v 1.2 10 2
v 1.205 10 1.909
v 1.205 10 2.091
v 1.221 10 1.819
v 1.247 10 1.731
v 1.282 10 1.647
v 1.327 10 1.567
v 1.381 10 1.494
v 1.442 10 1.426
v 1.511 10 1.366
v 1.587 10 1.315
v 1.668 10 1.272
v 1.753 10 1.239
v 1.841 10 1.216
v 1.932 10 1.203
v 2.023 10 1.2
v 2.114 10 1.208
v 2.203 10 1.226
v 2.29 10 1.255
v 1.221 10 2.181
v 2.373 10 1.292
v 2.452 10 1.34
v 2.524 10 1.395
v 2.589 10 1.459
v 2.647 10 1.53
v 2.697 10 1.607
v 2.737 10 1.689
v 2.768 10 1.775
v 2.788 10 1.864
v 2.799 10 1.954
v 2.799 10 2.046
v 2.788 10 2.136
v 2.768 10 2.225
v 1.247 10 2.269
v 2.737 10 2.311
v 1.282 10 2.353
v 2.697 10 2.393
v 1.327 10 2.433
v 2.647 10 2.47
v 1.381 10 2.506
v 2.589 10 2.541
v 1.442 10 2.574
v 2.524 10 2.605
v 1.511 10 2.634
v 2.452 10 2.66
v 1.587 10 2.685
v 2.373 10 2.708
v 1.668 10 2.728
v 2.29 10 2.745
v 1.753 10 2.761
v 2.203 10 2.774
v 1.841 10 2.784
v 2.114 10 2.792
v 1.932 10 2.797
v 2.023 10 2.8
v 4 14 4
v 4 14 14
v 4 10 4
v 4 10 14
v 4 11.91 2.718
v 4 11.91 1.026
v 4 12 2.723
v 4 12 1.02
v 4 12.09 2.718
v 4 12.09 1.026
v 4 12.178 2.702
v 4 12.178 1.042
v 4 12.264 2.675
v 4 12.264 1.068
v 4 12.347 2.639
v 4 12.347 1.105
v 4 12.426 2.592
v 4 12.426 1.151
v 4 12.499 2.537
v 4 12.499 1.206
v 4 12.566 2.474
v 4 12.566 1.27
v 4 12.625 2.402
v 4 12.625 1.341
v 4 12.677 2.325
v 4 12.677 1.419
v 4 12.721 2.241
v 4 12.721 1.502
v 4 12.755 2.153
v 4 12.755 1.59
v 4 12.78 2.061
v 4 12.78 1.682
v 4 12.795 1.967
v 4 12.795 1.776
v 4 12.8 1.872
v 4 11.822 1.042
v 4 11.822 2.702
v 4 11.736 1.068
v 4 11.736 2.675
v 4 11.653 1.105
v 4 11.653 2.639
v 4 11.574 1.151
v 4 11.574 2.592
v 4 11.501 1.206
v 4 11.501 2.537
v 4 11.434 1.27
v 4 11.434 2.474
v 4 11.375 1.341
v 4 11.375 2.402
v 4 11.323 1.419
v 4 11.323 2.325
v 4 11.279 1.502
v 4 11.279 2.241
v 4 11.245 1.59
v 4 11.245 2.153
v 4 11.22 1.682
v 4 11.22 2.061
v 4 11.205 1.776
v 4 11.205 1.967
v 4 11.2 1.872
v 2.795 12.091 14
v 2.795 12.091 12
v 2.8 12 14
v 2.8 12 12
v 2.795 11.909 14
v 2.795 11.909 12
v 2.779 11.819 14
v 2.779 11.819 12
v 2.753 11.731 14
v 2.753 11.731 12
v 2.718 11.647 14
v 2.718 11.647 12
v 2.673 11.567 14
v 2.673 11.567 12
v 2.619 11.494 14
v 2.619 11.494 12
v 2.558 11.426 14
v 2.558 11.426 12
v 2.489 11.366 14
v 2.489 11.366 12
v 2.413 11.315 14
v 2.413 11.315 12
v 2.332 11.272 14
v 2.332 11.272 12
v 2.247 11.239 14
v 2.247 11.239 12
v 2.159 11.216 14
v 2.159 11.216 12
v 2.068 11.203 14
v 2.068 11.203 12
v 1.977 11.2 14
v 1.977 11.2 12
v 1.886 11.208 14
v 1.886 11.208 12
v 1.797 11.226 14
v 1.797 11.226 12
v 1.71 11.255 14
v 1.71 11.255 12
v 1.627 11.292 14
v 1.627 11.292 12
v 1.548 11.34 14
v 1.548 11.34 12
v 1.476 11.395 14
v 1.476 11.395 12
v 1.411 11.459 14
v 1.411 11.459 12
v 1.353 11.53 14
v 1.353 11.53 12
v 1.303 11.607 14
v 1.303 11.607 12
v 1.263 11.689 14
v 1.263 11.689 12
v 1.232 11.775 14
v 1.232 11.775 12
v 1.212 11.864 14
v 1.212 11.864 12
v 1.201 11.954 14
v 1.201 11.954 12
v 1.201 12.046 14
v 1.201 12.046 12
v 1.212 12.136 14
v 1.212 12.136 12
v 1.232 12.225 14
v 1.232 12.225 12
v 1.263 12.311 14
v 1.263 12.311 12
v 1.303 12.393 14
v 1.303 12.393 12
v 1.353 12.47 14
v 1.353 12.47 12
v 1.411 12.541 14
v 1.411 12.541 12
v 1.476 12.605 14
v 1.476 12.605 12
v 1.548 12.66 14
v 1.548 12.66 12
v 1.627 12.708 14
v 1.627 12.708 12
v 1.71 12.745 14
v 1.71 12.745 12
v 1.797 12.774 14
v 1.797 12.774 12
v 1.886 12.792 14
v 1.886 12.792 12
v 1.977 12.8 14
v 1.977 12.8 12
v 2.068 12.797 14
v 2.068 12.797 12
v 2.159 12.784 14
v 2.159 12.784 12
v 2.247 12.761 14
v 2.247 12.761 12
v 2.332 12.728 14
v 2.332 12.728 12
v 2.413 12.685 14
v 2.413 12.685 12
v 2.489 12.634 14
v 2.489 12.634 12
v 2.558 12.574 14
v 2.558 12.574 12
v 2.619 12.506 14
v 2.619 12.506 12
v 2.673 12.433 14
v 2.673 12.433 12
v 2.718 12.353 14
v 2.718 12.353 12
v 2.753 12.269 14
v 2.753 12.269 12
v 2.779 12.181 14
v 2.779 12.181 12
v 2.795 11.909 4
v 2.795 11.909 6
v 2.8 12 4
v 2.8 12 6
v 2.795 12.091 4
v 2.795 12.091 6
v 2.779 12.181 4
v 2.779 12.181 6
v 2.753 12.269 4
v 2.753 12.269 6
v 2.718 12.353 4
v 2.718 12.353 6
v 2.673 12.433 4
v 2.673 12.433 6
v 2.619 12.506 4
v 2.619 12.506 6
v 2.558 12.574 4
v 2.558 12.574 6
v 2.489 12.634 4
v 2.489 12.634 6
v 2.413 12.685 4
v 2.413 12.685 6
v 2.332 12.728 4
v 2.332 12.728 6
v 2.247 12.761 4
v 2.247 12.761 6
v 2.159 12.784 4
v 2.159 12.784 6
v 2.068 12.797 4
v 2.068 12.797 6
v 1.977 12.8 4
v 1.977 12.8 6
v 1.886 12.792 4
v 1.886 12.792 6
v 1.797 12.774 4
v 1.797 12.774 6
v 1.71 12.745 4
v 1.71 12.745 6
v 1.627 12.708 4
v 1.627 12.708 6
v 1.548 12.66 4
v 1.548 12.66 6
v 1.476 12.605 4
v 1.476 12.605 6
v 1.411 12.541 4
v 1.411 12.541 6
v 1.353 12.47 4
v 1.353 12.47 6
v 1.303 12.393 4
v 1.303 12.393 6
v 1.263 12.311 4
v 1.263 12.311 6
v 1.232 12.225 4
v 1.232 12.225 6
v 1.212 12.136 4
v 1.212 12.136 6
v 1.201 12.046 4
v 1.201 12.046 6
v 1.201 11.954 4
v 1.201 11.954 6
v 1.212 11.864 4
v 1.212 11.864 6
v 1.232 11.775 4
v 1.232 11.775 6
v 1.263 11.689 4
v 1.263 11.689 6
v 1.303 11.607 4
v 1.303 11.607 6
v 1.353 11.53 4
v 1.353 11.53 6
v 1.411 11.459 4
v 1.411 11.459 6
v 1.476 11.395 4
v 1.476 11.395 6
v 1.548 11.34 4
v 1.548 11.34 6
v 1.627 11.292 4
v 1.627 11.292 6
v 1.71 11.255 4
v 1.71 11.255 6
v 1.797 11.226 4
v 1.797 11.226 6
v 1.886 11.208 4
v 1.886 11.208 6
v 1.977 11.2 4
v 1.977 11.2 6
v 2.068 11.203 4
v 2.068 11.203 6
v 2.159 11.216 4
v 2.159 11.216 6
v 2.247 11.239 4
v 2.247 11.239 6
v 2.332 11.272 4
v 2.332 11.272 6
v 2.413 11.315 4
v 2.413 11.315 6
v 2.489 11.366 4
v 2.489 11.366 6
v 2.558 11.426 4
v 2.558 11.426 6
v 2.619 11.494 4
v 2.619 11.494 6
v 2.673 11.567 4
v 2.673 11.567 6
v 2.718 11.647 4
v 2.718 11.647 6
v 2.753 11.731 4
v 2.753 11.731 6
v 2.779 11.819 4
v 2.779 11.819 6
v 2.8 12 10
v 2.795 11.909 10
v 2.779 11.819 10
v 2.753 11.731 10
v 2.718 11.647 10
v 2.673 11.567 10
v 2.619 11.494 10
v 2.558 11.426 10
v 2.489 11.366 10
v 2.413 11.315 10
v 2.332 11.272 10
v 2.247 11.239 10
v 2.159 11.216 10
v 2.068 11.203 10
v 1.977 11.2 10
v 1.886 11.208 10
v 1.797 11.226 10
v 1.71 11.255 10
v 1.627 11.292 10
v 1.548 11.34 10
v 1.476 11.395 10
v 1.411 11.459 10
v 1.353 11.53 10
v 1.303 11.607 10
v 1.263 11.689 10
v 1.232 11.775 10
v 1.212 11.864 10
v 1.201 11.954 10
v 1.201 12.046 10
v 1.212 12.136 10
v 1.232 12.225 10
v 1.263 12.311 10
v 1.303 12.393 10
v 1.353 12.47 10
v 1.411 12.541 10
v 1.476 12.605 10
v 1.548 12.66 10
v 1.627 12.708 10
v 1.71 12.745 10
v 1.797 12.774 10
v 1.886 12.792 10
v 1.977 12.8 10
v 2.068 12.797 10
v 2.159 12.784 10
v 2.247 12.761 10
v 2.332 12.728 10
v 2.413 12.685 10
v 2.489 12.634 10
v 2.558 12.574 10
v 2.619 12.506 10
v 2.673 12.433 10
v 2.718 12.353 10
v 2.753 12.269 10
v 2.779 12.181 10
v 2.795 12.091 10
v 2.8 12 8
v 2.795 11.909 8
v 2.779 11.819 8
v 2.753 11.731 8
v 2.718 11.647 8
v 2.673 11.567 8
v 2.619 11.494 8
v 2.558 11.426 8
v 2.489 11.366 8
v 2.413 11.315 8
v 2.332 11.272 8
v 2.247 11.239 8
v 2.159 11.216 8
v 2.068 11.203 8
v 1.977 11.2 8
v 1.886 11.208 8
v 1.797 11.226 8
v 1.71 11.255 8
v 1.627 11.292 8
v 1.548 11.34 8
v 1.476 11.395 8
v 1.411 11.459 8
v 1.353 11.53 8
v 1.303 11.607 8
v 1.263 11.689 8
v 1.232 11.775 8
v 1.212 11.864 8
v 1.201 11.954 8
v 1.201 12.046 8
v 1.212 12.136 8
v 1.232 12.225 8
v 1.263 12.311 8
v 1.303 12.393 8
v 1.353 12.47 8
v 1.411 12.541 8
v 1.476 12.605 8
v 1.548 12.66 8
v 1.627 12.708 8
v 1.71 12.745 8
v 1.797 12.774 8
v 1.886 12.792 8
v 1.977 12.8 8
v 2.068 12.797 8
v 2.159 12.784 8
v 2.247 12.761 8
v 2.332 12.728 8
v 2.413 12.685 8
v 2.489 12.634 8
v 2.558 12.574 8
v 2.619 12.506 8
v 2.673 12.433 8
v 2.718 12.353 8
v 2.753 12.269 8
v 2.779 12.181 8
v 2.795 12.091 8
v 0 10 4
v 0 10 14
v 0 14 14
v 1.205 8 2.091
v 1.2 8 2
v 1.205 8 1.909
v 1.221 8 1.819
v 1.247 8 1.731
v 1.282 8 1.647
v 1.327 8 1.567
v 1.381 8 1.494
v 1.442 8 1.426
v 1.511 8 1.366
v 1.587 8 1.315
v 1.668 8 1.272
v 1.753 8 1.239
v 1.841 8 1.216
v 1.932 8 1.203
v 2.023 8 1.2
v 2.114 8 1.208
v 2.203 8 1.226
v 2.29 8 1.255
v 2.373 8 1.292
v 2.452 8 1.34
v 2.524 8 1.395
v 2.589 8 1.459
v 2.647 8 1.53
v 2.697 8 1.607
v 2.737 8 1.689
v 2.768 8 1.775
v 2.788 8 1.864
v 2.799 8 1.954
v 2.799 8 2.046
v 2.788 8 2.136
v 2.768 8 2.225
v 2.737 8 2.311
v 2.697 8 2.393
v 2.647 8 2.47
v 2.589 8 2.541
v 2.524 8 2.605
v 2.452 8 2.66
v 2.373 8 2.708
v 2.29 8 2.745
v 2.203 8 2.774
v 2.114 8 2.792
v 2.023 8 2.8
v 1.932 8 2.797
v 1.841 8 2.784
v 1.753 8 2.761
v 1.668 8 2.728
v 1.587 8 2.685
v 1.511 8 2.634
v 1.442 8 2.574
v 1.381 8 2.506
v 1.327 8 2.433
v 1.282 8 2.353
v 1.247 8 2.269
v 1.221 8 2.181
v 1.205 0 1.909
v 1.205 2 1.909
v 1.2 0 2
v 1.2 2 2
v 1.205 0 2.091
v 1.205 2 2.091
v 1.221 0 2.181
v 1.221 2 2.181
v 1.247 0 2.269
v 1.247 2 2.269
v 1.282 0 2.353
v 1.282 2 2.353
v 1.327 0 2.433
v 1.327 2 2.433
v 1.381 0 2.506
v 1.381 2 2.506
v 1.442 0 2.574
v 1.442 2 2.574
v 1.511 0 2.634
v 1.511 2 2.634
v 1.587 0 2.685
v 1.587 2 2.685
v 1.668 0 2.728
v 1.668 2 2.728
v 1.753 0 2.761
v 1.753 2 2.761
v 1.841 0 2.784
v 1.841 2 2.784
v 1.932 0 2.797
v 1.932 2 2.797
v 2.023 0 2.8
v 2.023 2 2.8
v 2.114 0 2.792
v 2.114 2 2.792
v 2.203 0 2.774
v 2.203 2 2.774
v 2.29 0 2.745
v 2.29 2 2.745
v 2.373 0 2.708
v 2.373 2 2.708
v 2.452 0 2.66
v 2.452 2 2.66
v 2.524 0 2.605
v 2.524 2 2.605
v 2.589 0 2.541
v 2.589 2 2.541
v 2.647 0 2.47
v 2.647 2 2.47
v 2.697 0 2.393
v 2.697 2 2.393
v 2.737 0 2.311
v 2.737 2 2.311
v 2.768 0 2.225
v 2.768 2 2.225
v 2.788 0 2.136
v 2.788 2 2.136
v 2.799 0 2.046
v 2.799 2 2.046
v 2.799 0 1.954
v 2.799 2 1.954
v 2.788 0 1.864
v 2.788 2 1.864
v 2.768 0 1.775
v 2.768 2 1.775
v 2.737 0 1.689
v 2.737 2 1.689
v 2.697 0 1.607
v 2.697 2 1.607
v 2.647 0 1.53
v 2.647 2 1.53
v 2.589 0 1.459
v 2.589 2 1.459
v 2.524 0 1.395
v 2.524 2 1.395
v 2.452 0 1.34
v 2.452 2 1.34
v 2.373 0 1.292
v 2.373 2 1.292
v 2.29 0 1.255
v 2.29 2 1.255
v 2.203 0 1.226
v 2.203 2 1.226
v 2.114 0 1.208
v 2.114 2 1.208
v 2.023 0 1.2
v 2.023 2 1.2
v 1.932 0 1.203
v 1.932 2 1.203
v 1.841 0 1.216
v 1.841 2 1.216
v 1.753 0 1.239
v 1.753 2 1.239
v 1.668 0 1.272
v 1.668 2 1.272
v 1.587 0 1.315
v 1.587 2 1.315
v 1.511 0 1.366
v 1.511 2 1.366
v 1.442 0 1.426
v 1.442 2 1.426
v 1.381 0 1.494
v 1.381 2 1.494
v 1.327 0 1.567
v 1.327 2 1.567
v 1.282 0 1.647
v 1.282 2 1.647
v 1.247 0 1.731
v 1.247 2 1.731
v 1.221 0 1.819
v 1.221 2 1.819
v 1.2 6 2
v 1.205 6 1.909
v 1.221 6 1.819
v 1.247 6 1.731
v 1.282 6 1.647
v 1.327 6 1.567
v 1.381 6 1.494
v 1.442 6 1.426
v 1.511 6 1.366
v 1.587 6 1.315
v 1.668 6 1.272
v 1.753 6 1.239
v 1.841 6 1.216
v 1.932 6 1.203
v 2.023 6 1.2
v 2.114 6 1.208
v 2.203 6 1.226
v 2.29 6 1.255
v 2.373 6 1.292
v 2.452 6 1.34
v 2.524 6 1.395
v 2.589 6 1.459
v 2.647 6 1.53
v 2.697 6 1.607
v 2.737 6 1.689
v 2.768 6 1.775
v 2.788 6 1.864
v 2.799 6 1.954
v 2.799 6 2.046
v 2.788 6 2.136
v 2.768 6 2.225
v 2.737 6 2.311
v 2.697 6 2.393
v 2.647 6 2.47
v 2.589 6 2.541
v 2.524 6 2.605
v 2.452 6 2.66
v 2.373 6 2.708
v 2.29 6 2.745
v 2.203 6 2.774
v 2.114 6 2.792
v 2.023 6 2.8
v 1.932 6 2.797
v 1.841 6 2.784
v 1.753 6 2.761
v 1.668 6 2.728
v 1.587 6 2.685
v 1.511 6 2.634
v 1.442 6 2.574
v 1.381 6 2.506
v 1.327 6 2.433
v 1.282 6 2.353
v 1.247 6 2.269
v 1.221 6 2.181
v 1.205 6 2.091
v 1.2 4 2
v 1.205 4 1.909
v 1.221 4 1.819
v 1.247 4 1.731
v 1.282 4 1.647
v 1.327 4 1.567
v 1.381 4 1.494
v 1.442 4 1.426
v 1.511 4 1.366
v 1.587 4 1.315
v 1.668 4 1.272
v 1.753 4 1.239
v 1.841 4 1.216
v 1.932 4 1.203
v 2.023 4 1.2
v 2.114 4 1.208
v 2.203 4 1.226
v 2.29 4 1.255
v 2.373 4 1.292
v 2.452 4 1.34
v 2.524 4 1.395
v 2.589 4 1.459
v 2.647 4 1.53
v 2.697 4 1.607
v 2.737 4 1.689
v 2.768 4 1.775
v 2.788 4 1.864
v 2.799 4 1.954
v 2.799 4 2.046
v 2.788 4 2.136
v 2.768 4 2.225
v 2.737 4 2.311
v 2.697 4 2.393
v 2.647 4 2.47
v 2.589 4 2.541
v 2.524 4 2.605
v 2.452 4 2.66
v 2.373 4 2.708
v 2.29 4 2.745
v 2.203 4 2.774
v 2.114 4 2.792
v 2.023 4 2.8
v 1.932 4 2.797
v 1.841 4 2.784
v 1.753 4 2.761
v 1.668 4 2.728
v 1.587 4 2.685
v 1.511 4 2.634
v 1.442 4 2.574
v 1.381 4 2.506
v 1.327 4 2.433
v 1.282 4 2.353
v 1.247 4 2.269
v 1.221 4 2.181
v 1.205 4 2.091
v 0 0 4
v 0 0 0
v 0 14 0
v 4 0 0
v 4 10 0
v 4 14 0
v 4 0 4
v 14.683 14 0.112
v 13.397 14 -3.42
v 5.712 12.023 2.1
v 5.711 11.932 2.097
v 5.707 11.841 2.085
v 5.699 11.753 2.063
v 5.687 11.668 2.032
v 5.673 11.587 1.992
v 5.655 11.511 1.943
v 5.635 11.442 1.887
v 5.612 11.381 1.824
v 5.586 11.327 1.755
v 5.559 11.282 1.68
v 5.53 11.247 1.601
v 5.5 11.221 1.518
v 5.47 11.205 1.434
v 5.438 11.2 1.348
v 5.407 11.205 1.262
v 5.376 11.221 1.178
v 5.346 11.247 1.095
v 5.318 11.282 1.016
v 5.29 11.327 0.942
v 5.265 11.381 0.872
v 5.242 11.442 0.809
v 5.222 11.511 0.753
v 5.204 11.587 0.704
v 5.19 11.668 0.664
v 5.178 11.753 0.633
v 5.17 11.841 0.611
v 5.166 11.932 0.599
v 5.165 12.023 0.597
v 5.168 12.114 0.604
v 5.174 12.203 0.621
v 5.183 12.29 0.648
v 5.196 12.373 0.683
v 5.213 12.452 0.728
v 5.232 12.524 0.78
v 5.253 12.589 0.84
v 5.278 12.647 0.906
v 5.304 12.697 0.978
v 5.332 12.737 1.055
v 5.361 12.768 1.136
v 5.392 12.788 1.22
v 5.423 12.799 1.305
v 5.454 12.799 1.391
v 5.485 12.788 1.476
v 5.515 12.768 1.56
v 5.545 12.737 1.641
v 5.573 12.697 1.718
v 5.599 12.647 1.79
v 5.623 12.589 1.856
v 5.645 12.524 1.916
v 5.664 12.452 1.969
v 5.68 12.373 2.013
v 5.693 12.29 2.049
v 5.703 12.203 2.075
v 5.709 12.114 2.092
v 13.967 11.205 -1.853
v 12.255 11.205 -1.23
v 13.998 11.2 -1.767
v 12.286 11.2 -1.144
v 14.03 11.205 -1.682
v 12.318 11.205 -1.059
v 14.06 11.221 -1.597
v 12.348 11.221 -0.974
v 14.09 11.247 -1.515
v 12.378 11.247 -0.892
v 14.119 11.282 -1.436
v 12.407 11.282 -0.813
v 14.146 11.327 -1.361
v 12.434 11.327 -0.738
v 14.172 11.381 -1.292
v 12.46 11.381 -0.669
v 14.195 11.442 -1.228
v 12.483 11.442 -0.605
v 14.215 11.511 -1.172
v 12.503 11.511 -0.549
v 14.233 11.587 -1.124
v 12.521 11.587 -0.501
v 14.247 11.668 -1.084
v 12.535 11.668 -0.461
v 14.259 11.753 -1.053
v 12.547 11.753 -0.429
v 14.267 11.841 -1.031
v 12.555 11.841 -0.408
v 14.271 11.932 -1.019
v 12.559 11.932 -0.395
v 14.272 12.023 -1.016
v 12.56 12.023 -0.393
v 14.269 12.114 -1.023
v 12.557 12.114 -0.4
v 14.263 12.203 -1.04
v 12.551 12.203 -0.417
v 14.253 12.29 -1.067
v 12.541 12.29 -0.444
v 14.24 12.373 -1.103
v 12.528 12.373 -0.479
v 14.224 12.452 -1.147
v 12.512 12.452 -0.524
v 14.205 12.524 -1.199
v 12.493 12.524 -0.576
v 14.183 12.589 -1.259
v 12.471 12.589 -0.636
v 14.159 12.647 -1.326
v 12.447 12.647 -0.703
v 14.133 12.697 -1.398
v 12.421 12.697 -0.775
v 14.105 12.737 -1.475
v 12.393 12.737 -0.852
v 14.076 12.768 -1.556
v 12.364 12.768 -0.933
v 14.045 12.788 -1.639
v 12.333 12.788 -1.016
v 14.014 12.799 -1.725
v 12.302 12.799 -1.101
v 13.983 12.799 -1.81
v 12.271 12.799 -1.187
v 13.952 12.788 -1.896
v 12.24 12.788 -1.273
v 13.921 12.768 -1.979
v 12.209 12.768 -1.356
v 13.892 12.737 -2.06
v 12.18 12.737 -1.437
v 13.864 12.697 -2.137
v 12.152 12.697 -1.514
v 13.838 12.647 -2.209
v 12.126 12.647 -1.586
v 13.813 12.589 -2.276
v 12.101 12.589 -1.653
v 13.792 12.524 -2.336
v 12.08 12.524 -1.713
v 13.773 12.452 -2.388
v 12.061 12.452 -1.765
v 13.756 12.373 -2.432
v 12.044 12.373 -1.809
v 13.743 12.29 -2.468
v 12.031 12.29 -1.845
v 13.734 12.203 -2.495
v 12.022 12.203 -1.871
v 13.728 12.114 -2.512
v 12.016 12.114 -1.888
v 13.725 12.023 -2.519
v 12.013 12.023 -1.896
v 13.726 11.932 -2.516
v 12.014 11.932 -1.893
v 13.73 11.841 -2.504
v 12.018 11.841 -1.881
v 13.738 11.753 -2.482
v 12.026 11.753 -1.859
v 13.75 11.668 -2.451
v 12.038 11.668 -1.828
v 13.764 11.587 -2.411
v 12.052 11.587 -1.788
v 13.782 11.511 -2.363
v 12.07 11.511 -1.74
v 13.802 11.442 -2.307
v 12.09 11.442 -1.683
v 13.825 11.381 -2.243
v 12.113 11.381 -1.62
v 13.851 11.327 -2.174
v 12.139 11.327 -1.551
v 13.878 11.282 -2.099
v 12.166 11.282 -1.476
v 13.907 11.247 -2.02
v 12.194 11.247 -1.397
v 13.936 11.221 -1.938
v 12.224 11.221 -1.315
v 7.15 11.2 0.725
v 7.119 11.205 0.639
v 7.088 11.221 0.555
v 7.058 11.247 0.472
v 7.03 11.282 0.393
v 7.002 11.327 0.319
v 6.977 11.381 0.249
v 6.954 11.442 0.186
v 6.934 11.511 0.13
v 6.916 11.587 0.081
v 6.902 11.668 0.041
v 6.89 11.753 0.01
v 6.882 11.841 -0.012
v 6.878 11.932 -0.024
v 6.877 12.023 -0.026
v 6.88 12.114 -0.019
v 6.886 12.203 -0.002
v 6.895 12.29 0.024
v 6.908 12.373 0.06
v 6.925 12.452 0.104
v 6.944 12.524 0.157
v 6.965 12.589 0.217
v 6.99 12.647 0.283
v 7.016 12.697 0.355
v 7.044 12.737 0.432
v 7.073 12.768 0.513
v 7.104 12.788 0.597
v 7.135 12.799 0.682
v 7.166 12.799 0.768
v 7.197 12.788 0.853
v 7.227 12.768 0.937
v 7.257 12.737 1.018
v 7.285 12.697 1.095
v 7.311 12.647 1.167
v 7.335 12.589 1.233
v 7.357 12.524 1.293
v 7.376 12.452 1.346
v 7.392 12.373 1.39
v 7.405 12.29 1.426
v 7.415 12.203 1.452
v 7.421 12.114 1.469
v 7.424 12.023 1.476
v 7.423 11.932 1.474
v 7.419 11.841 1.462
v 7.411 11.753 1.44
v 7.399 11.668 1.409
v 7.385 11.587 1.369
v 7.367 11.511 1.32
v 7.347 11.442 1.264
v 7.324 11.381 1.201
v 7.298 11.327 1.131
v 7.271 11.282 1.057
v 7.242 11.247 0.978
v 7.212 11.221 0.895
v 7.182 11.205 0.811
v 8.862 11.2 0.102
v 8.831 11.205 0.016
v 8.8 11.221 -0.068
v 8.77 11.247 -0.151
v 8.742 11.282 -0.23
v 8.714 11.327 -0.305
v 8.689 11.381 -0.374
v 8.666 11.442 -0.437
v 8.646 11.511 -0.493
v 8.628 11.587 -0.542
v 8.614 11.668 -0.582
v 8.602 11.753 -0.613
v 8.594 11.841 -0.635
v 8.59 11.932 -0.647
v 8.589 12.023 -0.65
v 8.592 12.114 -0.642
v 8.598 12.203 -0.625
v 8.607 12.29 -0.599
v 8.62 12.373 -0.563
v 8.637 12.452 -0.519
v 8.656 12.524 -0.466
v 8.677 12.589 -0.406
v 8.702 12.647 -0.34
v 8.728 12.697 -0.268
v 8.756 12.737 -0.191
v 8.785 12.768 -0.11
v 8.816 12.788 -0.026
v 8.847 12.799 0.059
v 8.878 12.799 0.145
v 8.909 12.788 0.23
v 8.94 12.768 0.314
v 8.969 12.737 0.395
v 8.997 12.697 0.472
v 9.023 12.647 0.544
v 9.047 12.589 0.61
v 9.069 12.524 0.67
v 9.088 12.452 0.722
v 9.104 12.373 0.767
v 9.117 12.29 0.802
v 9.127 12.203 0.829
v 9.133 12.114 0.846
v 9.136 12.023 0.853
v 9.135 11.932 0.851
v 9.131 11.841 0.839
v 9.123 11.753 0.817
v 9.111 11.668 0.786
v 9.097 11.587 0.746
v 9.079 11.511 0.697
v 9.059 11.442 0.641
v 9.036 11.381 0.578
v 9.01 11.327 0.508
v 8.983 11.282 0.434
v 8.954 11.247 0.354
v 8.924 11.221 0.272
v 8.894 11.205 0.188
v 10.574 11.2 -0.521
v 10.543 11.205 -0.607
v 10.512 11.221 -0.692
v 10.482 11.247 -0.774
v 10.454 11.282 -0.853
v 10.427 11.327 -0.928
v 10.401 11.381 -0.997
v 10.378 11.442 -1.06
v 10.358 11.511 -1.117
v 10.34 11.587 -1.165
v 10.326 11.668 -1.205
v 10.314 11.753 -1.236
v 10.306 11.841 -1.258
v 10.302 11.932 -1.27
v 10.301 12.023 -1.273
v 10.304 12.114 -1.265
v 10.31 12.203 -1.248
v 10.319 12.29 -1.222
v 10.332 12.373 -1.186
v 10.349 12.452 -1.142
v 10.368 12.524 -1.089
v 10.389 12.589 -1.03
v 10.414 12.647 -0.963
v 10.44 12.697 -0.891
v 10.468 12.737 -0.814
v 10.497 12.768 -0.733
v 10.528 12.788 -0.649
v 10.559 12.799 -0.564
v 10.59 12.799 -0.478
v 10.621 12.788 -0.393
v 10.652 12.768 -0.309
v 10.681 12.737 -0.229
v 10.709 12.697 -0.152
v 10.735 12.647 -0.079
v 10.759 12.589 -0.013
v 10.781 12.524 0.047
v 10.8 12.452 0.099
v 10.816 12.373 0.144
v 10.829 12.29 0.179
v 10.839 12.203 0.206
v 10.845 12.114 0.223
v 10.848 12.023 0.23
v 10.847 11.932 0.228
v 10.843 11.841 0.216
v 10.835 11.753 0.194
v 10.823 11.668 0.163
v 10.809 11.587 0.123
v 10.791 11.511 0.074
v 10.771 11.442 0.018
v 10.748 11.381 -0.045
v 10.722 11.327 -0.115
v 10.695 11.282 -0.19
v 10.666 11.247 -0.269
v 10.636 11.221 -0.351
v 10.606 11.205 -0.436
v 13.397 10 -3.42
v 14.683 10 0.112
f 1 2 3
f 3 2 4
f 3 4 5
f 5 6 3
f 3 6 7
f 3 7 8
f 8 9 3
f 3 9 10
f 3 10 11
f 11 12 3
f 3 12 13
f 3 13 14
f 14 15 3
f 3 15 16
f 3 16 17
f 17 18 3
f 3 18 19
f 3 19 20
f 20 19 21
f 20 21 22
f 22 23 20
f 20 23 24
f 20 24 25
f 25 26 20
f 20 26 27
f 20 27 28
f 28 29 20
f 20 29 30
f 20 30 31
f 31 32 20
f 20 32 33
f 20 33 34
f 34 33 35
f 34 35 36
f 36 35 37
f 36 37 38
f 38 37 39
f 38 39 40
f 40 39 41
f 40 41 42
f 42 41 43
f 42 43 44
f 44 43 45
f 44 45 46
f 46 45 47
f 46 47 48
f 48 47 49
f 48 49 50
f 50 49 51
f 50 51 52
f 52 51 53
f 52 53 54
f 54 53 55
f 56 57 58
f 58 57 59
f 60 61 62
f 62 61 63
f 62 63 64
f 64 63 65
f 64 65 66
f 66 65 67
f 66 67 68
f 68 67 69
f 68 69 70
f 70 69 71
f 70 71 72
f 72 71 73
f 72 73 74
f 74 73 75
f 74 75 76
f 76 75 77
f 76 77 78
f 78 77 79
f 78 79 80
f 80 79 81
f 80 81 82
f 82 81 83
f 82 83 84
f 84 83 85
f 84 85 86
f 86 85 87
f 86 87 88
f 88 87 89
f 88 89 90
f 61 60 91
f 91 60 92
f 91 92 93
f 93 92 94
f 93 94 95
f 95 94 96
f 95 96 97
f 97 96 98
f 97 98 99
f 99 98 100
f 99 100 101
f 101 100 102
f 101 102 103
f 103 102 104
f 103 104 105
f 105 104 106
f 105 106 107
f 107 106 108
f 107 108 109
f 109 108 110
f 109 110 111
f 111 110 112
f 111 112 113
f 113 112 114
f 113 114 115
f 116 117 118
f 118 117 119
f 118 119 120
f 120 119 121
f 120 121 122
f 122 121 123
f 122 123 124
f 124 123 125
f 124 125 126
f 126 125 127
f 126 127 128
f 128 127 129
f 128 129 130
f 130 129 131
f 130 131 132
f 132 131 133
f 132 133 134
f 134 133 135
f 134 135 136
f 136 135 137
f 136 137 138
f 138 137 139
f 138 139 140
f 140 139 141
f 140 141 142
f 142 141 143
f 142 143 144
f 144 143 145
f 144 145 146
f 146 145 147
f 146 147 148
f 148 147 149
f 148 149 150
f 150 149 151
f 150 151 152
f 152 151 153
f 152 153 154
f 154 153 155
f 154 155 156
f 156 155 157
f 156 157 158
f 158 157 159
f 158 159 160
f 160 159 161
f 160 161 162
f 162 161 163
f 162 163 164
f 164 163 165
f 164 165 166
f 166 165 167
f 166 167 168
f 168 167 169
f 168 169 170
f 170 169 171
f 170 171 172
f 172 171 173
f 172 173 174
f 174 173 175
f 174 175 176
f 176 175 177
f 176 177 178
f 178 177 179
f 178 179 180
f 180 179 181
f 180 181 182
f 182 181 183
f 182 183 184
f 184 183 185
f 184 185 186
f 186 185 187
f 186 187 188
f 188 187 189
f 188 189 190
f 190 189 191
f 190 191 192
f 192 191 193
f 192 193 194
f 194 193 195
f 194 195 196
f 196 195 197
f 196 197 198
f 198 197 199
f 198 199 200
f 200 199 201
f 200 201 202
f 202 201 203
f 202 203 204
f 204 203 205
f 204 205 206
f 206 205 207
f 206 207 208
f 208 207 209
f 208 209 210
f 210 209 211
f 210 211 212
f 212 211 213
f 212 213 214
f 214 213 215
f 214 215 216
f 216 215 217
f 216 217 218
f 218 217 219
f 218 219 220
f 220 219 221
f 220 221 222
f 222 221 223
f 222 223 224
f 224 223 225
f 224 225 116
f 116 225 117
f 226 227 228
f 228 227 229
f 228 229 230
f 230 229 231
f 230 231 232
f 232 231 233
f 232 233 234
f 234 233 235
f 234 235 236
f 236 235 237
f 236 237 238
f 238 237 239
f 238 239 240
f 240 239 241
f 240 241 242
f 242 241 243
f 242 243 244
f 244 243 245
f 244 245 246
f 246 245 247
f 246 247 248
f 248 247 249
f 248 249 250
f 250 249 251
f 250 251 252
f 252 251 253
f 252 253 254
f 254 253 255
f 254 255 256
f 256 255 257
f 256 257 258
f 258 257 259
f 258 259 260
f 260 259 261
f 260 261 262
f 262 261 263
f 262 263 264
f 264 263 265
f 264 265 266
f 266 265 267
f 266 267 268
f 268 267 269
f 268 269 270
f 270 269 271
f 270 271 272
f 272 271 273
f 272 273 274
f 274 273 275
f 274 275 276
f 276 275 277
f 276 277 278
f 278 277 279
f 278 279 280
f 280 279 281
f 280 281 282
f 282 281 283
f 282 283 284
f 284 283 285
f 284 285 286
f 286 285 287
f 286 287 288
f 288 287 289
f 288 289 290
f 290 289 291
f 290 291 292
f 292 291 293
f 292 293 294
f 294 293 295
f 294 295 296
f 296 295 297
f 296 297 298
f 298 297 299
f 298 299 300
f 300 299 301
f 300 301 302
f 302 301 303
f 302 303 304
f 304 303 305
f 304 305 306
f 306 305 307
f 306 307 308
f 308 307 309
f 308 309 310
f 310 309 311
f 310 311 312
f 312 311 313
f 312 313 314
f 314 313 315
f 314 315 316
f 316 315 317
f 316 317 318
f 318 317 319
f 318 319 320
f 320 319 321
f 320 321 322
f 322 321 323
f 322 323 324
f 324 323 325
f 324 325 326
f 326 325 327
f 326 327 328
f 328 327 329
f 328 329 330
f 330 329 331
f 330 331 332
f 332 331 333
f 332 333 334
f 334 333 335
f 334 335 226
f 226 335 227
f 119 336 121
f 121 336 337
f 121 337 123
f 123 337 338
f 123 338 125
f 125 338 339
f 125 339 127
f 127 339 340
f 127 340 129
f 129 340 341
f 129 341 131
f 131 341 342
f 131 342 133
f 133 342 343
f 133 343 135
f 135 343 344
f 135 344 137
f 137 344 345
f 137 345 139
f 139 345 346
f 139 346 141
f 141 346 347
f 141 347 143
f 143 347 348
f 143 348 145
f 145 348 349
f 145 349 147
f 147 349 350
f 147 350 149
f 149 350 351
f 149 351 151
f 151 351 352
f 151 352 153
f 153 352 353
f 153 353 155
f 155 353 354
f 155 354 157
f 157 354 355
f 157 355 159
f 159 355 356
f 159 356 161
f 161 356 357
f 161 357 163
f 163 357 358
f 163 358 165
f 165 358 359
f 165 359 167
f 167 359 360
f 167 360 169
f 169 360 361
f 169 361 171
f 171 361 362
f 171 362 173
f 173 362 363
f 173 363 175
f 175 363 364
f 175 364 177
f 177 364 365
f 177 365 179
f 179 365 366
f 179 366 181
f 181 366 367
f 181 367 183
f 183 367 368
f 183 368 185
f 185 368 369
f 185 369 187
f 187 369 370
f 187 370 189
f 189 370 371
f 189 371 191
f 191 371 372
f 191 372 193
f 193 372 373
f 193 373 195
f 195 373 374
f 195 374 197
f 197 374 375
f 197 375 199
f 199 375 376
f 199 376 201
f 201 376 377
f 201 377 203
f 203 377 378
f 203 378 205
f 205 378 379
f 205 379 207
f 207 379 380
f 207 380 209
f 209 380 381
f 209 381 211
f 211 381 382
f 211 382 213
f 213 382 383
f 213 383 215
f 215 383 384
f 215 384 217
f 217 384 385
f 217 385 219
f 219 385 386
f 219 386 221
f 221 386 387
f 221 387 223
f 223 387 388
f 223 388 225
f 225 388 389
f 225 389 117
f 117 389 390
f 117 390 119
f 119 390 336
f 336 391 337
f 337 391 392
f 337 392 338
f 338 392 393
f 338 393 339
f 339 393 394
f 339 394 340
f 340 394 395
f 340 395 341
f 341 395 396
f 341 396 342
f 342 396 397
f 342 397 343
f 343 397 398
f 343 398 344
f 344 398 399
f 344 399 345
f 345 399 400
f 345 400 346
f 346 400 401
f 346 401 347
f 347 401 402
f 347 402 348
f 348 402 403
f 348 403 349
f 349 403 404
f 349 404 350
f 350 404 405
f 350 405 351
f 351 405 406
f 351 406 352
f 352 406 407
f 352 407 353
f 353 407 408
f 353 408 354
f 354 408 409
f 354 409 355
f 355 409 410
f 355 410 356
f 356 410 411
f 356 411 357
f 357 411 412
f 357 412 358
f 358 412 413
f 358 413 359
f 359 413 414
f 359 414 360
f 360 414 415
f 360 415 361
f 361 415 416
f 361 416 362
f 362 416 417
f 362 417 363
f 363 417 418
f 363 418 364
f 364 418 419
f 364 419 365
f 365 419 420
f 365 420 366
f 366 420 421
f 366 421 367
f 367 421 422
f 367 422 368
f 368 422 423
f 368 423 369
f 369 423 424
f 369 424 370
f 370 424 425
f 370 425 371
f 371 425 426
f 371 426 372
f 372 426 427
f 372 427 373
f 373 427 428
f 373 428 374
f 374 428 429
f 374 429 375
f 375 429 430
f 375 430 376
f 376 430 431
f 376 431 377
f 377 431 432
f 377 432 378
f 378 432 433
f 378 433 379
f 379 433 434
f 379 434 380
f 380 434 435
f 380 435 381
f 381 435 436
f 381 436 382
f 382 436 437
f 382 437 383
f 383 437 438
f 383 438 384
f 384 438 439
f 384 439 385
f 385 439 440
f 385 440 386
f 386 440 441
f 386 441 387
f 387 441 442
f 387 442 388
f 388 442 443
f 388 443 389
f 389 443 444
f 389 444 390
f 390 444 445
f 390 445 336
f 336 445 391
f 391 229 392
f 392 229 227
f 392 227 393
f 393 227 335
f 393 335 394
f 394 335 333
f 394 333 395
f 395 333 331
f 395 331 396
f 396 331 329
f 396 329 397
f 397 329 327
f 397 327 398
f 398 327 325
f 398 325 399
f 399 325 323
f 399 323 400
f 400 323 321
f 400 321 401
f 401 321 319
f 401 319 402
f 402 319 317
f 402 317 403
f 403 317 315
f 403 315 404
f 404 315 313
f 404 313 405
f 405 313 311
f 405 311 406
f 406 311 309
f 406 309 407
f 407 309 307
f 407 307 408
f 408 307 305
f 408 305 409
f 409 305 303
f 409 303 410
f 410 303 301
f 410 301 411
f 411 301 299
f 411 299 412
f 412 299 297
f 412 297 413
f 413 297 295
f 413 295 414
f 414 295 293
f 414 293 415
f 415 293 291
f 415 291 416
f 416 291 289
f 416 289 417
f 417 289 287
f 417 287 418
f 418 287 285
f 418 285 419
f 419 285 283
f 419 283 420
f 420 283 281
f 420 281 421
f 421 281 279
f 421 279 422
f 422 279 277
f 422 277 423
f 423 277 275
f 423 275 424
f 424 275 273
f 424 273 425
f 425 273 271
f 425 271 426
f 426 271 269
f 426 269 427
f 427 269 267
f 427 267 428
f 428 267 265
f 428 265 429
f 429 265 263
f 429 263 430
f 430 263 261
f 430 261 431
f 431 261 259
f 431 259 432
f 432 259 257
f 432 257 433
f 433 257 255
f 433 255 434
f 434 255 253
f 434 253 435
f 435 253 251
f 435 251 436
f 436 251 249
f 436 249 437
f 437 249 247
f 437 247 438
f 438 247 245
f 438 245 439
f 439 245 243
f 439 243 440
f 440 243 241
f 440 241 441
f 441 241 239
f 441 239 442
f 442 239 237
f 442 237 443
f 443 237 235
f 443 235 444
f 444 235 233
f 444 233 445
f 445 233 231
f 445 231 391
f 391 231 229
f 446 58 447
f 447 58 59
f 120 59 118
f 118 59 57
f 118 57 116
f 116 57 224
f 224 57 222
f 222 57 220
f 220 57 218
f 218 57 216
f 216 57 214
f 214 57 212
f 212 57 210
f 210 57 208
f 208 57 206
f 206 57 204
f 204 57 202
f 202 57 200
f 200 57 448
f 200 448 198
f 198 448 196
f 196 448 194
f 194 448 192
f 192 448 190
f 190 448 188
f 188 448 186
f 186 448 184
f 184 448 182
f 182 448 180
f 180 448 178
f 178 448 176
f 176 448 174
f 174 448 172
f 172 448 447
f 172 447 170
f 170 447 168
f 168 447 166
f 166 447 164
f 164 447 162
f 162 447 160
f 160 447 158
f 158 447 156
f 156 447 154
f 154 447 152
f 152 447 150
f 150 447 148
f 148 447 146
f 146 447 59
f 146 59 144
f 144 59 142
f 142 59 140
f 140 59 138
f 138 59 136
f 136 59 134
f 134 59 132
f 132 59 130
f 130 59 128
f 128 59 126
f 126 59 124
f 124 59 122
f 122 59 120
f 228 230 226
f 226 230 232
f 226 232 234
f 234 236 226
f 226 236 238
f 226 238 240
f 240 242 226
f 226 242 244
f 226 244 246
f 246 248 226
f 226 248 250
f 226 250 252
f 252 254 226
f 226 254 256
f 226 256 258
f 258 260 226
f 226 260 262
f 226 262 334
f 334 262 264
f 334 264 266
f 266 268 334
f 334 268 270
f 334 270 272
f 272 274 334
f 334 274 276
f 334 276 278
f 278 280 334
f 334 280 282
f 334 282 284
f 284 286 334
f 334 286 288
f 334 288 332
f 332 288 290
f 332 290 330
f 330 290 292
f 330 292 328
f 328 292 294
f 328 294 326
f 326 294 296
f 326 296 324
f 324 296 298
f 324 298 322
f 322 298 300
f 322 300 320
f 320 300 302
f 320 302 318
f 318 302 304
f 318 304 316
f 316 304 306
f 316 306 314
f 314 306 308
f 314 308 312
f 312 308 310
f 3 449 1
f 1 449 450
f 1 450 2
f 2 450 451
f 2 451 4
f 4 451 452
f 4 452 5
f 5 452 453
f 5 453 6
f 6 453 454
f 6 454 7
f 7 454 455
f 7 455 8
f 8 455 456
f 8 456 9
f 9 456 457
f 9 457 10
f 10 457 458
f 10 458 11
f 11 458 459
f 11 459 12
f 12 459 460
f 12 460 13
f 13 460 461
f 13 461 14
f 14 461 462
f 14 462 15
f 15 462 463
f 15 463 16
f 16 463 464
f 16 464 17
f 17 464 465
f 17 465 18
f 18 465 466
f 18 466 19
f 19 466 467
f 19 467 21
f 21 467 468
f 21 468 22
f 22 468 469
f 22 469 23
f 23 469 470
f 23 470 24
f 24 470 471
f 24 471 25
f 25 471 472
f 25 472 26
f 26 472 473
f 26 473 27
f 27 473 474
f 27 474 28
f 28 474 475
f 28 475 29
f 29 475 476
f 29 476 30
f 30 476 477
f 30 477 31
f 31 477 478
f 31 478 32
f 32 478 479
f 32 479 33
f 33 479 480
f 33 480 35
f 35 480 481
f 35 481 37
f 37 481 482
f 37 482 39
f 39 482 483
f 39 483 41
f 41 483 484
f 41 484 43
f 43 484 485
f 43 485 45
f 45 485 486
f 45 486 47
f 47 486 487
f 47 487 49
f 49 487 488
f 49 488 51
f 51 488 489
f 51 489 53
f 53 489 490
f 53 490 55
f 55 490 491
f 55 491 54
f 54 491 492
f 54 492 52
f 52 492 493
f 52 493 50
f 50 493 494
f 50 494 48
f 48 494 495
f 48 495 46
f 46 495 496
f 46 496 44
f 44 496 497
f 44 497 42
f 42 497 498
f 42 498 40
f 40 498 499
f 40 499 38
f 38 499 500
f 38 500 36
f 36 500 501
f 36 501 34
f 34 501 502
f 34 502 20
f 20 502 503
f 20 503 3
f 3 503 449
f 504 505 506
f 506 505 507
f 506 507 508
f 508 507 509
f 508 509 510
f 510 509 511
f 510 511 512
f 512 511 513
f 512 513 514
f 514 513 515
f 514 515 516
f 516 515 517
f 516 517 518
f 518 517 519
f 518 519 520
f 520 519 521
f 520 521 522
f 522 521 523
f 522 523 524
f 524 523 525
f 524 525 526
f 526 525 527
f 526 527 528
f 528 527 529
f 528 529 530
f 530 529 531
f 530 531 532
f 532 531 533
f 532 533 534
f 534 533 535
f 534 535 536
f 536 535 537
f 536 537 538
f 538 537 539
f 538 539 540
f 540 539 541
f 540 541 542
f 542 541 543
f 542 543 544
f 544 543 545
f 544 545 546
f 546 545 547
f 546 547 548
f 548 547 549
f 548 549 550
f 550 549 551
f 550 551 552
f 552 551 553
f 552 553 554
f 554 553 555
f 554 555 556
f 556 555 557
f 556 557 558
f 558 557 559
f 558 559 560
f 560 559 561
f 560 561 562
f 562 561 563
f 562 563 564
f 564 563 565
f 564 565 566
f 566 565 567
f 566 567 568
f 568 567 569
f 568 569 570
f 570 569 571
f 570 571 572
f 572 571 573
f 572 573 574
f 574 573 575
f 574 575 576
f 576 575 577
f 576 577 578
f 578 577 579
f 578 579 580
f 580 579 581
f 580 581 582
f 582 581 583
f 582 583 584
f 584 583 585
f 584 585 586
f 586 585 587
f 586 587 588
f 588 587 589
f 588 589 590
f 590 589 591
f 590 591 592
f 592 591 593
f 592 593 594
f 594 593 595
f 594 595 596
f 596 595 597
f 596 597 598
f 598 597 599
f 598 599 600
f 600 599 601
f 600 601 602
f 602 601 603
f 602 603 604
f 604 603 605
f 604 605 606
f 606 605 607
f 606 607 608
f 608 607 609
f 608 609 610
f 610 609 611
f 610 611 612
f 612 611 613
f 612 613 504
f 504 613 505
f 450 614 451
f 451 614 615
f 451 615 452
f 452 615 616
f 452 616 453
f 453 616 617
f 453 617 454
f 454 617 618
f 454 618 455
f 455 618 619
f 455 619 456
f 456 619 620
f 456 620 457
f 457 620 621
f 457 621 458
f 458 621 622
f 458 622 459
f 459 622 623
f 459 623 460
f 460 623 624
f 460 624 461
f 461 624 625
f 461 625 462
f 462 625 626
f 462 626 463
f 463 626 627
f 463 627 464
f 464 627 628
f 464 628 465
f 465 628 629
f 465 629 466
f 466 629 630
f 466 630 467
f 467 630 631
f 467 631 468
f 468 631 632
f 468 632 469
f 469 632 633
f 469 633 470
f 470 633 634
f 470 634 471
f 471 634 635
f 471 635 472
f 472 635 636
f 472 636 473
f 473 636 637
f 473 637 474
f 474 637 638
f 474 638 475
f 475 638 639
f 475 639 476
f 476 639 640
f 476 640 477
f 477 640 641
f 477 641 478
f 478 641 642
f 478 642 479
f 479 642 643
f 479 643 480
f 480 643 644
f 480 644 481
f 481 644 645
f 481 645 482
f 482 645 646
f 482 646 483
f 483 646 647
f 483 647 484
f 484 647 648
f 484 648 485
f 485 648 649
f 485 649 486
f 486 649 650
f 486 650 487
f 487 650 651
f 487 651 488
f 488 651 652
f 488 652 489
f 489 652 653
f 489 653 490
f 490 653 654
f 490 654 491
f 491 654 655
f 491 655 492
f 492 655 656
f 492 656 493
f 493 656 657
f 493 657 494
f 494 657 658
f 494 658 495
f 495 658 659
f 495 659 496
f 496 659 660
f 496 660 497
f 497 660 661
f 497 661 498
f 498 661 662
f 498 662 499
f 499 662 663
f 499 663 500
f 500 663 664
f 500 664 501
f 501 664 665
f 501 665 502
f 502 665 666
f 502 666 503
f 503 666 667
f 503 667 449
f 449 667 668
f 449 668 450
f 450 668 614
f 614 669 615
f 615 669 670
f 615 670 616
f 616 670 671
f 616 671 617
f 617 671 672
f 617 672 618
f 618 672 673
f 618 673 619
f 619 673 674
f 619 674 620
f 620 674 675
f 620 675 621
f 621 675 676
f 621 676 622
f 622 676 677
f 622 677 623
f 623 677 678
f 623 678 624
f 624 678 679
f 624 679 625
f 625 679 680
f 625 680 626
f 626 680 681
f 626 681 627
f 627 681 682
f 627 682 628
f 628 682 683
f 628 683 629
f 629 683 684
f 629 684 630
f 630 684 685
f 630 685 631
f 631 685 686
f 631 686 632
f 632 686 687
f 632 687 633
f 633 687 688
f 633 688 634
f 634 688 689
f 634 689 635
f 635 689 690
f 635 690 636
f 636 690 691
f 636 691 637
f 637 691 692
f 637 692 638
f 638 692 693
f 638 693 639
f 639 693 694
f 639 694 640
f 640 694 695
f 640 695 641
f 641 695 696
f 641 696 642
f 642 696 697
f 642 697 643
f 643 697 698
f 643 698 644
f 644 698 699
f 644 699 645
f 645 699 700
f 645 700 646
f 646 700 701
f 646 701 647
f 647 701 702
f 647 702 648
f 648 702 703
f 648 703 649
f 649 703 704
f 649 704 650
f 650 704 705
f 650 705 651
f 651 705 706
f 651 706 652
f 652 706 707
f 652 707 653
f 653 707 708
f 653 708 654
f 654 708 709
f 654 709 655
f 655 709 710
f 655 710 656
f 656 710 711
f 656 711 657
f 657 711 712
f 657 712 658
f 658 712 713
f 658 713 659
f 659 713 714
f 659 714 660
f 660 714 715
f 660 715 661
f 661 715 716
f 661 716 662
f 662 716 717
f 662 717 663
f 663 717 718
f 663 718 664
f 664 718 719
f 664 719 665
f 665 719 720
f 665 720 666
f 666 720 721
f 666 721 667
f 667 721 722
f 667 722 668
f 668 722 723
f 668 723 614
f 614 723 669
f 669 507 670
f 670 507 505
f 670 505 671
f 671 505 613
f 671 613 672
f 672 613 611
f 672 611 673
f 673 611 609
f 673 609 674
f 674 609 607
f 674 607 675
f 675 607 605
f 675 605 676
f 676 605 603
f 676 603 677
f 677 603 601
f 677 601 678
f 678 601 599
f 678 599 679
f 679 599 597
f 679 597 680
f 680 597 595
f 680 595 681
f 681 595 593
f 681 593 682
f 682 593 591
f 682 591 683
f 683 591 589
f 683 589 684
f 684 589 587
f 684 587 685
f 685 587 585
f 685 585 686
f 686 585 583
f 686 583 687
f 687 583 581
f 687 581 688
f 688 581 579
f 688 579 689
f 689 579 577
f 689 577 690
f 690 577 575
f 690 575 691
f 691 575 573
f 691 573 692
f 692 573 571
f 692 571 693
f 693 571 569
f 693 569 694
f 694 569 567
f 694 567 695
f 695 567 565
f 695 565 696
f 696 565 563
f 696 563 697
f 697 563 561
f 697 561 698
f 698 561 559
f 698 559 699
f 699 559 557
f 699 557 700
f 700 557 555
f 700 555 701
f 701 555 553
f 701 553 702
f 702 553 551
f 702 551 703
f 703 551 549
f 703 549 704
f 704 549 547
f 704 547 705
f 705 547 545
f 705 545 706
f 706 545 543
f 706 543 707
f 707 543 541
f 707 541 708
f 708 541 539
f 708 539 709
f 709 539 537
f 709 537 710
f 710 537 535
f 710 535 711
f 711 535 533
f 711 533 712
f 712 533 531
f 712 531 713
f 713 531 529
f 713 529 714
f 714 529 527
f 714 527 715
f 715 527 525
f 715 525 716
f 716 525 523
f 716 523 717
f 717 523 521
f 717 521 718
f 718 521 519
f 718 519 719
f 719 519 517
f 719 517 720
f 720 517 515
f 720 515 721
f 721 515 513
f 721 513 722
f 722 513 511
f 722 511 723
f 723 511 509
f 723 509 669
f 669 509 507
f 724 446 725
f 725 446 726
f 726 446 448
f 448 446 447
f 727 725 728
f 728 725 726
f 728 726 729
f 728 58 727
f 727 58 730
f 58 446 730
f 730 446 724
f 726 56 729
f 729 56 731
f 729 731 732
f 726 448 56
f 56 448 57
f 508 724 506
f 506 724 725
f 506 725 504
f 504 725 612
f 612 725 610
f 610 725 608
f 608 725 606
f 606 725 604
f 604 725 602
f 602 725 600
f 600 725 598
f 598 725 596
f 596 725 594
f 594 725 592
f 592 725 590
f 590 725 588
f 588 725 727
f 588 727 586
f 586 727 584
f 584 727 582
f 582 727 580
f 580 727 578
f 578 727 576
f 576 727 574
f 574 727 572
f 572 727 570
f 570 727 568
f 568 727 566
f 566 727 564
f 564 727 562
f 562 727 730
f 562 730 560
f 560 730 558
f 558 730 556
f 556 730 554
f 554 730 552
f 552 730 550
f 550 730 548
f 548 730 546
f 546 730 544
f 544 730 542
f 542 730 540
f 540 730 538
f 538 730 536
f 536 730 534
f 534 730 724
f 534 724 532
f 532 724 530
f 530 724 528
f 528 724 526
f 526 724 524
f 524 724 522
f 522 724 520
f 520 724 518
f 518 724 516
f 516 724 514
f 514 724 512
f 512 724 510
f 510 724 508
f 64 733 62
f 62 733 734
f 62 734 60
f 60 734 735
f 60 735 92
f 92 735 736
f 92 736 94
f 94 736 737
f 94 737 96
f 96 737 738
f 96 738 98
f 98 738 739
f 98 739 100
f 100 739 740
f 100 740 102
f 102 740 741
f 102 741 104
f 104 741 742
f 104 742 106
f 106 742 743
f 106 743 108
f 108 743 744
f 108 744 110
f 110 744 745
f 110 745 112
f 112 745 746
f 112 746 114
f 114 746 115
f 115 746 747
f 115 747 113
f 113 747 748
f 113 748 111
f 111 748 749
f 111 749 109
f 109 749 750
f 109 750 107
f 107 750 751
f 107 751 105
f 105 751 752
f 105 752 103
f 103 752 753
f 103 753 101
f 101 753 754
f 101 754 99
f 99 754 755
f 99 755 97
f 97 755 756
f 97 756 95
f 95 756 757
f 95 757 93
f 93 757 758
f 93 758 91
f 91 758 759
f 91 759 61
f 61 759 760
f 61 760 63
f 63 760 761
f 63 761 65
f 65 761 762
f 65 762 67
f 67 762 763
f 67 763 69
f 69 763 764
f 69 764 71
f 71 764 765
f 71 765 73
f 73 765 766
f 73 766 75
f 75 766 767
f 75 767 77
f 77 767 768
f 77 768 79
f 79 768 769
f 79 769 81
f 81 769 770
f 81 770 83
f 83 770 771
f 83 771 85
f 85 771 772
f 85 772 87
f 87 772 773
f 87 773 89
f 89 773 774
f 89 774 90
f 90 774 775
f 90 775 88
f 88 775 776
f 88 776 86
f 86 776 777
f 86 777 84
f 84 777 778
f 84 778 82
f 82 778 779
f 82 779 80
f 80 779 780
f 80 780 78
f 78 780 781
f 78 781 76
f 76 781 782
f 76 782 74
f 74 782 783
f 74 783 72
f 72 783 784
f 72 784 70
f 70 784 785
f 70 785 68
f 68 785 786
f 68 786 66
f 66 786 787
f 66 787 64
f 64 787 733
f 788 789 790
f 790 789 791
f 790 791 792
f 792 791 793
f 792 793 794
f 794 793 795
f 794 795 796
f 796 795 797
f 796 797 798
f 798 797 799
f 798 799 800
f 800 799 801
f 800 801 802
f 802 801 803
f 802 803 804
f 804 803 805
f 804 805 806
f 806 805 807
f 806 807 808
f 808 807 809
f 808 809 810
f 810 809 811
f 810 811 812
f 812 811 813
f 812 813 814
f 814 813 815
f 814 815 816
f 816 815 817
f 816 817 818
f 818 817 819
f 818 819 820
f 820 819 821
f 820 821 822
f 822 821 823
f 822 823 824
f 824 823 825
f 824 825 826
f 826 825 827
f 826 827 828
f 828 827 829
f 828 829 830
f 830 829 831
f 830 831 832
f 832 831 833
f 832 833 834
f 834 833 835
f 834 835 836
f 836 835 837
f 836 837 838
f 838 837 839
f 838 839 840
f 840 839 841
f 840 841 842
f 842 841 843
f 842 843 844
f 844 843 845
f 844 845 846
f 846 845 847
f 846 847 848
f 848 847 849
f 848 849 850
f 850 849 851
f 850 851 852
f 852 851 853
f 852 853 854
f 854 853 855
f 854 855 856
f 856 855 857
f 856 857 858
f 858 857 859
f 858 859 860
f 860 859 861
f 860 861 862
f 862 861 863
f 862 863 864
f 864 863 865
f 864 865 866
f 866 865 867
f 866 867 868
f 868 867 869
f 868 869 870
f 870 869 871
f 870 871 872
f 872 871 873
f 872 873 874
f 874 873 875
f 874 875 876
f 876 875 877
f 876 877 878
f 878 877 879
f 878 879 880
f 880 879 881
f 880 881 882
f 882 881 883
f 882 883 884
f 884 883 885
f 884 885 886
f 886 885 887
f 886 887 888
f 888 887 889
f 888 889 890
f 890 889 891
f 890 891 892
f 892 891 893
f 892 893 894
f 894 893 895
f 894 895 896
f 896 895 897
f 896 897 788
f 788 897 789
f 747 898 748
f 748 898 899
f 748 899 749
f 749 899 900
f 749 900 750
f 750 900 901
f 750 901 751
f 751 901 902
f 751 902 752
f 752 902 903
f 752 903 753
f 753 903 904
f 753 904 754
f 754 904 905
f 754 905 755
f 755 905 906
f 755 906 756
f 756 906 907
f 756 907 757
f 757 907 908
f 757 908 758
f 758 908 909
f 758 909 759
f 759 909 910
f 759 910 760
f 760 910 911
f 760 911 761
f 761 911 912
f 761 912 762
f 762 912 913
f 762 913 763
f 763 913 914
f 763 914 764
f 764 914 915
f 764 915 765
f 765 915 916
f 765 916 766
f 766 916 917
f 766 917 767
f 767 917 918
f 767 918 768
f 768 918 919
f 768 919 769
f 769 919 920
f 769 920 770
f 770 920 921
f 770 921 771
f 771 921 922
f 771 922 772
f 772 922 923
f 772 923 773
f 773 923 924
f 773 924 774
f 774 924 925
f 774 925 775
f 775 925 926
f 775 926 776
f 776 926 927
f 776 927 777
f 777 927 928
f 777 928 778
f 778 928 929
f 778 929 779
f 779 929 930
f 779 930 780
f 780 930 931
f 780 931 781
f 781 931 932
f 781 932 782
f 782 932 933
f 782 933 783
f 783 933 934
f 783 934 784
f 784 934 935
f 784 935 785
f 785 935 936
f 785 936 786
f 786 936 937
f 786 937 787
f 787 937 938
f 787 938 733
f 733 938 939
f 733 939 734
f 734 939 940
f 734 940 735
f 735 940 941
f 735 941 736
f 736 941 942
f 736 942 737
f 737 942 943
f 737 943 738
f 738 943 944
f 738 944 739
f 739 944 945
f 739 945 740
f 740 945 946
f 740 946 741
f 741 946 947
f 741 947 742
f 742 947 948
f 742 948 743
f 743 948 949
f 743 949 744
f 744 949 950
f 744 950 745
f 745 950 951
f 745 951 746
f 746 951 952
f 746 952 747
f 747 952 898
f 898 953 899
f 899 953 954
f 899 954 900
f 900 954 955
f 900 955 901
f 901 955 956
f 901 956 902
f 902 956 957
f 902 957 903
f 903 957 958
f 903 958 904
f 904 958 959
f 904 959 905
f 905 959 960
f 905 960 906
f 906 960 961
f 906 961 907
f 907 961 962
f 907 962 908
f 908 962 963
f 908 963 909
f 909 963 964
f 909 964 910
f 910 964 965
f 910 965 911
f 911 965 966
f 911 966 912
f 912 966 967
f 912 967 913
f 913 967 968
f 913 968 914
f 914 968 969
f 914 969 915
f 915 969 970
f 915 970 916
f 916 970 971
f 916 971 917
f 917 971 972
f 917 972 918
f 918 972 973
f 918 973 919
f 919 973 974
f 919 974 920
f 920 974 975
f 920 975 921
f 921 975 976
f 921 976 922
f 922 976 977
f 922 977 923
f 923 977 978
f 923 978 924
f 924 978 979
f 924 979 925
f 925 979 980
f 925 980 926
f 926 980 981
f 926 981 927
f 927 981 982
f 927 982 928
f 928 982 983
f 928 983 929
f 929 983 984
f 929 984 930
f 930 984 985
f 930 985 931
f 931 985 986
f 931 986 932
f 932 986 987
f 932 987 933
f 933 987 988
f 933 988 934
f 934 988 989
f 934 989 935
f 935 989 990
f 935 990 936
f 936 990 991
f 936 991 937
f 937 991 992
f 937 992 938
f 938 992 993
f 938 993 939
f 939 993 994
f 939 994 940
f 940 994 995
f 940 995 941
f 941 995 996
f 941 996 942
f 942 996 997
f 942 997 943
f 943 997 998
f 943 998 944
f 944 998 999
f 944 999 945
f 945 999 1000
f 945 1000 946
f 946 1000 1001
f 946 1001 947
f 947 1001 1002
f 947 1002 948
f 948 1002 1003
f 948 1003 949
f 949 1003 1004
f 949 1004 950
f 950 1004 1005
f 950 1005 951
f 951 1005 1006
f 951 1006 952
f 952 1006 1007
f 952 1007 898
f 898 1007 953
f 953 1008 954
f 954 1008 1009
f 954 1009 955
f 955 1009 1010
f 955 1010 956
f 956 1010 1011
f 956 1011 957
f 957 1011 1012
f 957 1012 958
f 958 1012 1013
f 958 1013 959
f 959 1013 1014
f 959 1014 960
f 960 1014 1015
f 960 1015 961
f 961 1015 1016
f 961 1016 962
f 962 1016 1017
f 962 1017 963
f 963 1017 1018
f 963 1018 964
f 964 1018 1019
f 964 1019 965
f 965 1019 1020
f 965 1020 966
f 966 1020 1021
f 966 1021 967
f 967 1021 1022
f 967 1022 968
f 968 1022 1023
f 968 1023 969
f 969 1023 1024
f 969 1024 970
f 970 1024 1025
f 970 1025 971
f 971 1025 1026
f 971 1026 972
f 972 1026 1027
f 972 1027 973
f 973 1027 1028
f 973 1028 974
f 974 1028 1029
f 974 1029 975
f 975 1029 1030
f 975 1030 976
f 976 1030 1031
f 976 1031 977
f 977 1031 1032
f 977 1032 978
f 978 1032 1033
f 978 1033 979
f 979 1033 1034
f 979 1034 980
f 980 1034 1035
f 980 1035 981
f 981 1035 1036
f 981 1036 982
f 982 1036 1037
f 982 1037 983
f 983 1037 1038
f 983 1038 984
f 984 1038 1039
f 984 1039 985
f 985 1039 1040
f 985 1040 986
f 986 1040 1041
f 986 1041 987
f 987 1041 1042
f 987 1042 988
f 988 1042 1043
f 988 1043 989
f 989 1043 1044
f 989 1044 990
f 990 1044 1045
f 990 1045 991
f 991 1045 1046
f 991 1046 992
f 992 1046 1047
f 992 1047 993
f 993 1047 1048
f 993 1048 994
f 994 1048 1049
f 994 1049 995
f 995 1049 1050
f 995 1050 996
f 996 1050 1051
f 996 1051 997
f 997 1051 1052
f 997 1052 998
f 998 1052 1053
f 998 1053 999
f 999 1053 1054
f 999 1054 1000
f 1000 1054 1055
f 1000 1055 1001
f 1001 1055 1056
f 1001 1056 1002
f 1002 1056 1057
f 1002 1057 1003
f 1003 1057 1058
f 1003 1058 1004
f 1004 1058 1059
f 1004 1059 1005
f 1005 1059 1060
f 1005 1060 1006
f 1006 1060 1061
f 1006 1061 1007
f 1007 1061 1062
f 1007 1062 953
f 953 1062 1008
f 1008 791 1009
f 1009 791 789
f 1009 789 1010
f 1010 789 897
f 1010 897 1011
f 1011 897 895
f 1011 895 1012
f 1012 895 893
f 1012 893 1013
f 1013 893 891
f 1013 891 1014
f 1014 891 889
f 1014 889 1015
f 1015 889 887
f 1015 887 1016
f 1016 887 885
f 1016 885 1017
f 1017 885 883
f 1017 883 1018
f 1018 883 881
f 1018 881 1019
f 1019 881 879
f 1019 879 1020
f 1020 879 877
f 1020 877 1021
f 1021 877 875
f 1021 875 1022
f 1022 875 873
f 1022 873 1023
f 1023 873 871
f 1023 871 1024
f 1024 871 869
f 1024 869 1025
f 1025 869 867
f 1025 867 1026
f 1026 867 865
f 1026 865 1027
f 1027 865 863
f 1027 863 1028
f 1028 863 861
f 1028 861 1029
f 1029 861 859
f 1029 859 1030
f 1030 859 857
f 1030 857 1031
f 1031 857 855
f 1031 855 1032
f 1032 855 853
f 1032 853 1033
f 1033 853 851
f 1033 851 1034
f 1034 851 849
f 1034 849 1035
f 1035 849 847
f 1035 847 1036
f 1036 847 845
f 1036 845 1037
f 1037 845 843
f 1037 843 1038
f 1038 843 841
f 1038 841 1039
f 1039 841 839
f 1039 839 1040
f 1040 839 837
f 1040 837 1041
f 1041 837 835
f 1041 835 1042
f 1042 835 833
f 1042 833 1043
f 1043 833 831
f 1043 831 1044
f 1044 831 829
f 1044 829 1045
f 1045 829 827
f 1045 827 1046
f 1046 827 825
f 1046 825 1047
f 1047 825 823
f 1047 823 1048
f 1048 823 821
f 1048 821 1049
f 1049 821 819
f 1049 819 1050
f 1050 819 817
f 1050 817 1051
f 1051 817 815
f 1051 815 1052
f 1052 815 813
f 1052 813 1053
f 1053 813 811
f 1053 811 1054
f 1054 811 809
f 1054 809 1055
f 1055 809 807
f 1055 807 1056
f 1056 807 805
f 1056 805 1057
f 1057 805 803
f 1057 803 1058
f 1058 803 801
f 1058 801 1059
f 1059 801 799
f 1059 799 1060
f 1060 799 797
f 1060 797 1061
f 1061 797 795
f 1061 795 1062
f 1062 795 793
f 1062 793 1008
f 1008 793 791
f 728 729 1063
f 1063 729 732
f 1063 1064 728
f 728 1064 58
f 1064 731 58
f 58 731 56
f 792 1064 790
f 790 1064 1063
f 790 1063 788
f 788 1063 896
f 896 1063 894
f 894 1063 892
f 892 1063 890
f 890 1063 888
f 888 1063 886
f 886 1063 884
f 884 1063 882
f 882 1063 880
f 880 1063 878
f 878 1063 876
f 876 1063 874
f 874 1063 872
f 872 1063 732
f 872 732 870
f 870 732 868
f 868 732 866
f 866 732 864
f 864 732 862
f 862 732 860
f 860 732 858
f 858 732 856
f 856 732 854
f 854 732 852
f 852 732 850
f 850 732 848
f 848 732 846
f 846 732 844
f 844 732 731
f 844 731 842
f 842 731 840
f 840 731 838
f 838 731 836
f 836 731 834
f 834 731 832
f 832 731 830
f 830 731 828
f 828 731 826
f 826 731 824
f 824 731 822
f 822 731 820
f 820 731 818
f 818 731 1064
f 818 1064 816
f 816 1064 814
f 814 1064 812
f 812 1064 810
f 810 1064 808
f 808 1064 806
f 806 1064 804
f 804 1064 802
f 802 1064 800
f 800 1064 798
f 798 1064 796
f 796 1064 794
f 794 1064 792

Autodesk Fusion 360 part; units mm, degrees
sketch "Sketch1" plane through (0, 0, 0) normal (0, 1, 0) x (1, 0, 0)
  line L0 (0, 0) -> (4, 0)
  line L1 (4, 0) -> (4, -4)
  line L2 (4, -4) -> (0, -4)
  line L3 (0, -4) -> (0, 0)
  circle A0 centre (2, -2) radius 0.8
  dimension "d1" = 4
  dimension "d2" = 4
  dimension "d3" = 1.6
  dimension "d4" = 2
  dimension "d5" = 2
extrude "Extrude1" add sketch "Sketch1" along normal blind 14 makes body 1
sketch "Sketch2" plane through (0, 0, 4) normal (0, 0, 1) x (-1, 0, 0)
  line L0 (0, 0) -> (-4, 0)
  line L1 (-4, 0) -> (-4, -14)
  line L2 (-4, -14) -> (0, -14)
  line L3 (0, -14) -> (0, 0)
  line L4 (-4, -14) -> (0, -14)
  line L5 (0, -14) -> (0, -10)
  line L6 (0, -10) -> (-4, -10)
  line L7 (-4, -10) -> (-4, -14)
  circle A0 centre (-2, -12) radius 0.8
  dimension "d8" = 4
  dimension "d9" = 1.6
  dimension "d10" = 2
  dimension "d11" = 2
extrude "Extrude2" add sketch "Sketch2" along normal blind 10 contours L1 L2 L3 L4 L5 L6 L7 bodies 1
ref_plane "WorkPlane1" through (4, 7, 0) normal (0.9397, 0, -0.342) x (0, 1, 0)
sketch "Sketch3" plane through (4, 7, 0) normal (0.9397, 0, -0.342) x (0, 1, 0)
  line L0 (-7, 3.7588) -> (-7, 0)
  line L1 (-7, 0) -> (7, 0)
  line L2 (7, 0) -> (7, 13.1557)
  line L3 (7, 13.1557) -> (3, 13.1557)
  line L4 (3, 13.1557) -> (3, 3.7588)
  line L5 (3, 3.7588) -> (-7, 3.7588)
  line L6 (7, 0) -> (3, 0)
  line L7 (3, 0) -> (3, 3.7588)
  line L8 (3, 3.7588) -> (7, 3.7588)
  line L9 (7, 3.7588) -> (7, 0)
  circle A0 centre (5, 1.7588) radius 0.8
  dimension "d15" = 1.6
  dimension "d16" = 2
  dimension "d17" = 2
extrude "Extrude3" add sketch "Sketch3" along normal blind 10 separate body contours L1 L2 L6 L7 L8 L9 makes body 2
extrude "Extrude4" add 1 faces at (5.1485, 12.0199, 3.1555) along direction (-0.939693, 0, 0.34202) up to surface end surface through (4, 0, 0) normal (1, 0, 0) offset 0 on bodies 2 bodies 2 1
extrude "Extrude5" add sketch "Sketch1" along normal blind 4 from surface at 10 contours A0 bodies 2
